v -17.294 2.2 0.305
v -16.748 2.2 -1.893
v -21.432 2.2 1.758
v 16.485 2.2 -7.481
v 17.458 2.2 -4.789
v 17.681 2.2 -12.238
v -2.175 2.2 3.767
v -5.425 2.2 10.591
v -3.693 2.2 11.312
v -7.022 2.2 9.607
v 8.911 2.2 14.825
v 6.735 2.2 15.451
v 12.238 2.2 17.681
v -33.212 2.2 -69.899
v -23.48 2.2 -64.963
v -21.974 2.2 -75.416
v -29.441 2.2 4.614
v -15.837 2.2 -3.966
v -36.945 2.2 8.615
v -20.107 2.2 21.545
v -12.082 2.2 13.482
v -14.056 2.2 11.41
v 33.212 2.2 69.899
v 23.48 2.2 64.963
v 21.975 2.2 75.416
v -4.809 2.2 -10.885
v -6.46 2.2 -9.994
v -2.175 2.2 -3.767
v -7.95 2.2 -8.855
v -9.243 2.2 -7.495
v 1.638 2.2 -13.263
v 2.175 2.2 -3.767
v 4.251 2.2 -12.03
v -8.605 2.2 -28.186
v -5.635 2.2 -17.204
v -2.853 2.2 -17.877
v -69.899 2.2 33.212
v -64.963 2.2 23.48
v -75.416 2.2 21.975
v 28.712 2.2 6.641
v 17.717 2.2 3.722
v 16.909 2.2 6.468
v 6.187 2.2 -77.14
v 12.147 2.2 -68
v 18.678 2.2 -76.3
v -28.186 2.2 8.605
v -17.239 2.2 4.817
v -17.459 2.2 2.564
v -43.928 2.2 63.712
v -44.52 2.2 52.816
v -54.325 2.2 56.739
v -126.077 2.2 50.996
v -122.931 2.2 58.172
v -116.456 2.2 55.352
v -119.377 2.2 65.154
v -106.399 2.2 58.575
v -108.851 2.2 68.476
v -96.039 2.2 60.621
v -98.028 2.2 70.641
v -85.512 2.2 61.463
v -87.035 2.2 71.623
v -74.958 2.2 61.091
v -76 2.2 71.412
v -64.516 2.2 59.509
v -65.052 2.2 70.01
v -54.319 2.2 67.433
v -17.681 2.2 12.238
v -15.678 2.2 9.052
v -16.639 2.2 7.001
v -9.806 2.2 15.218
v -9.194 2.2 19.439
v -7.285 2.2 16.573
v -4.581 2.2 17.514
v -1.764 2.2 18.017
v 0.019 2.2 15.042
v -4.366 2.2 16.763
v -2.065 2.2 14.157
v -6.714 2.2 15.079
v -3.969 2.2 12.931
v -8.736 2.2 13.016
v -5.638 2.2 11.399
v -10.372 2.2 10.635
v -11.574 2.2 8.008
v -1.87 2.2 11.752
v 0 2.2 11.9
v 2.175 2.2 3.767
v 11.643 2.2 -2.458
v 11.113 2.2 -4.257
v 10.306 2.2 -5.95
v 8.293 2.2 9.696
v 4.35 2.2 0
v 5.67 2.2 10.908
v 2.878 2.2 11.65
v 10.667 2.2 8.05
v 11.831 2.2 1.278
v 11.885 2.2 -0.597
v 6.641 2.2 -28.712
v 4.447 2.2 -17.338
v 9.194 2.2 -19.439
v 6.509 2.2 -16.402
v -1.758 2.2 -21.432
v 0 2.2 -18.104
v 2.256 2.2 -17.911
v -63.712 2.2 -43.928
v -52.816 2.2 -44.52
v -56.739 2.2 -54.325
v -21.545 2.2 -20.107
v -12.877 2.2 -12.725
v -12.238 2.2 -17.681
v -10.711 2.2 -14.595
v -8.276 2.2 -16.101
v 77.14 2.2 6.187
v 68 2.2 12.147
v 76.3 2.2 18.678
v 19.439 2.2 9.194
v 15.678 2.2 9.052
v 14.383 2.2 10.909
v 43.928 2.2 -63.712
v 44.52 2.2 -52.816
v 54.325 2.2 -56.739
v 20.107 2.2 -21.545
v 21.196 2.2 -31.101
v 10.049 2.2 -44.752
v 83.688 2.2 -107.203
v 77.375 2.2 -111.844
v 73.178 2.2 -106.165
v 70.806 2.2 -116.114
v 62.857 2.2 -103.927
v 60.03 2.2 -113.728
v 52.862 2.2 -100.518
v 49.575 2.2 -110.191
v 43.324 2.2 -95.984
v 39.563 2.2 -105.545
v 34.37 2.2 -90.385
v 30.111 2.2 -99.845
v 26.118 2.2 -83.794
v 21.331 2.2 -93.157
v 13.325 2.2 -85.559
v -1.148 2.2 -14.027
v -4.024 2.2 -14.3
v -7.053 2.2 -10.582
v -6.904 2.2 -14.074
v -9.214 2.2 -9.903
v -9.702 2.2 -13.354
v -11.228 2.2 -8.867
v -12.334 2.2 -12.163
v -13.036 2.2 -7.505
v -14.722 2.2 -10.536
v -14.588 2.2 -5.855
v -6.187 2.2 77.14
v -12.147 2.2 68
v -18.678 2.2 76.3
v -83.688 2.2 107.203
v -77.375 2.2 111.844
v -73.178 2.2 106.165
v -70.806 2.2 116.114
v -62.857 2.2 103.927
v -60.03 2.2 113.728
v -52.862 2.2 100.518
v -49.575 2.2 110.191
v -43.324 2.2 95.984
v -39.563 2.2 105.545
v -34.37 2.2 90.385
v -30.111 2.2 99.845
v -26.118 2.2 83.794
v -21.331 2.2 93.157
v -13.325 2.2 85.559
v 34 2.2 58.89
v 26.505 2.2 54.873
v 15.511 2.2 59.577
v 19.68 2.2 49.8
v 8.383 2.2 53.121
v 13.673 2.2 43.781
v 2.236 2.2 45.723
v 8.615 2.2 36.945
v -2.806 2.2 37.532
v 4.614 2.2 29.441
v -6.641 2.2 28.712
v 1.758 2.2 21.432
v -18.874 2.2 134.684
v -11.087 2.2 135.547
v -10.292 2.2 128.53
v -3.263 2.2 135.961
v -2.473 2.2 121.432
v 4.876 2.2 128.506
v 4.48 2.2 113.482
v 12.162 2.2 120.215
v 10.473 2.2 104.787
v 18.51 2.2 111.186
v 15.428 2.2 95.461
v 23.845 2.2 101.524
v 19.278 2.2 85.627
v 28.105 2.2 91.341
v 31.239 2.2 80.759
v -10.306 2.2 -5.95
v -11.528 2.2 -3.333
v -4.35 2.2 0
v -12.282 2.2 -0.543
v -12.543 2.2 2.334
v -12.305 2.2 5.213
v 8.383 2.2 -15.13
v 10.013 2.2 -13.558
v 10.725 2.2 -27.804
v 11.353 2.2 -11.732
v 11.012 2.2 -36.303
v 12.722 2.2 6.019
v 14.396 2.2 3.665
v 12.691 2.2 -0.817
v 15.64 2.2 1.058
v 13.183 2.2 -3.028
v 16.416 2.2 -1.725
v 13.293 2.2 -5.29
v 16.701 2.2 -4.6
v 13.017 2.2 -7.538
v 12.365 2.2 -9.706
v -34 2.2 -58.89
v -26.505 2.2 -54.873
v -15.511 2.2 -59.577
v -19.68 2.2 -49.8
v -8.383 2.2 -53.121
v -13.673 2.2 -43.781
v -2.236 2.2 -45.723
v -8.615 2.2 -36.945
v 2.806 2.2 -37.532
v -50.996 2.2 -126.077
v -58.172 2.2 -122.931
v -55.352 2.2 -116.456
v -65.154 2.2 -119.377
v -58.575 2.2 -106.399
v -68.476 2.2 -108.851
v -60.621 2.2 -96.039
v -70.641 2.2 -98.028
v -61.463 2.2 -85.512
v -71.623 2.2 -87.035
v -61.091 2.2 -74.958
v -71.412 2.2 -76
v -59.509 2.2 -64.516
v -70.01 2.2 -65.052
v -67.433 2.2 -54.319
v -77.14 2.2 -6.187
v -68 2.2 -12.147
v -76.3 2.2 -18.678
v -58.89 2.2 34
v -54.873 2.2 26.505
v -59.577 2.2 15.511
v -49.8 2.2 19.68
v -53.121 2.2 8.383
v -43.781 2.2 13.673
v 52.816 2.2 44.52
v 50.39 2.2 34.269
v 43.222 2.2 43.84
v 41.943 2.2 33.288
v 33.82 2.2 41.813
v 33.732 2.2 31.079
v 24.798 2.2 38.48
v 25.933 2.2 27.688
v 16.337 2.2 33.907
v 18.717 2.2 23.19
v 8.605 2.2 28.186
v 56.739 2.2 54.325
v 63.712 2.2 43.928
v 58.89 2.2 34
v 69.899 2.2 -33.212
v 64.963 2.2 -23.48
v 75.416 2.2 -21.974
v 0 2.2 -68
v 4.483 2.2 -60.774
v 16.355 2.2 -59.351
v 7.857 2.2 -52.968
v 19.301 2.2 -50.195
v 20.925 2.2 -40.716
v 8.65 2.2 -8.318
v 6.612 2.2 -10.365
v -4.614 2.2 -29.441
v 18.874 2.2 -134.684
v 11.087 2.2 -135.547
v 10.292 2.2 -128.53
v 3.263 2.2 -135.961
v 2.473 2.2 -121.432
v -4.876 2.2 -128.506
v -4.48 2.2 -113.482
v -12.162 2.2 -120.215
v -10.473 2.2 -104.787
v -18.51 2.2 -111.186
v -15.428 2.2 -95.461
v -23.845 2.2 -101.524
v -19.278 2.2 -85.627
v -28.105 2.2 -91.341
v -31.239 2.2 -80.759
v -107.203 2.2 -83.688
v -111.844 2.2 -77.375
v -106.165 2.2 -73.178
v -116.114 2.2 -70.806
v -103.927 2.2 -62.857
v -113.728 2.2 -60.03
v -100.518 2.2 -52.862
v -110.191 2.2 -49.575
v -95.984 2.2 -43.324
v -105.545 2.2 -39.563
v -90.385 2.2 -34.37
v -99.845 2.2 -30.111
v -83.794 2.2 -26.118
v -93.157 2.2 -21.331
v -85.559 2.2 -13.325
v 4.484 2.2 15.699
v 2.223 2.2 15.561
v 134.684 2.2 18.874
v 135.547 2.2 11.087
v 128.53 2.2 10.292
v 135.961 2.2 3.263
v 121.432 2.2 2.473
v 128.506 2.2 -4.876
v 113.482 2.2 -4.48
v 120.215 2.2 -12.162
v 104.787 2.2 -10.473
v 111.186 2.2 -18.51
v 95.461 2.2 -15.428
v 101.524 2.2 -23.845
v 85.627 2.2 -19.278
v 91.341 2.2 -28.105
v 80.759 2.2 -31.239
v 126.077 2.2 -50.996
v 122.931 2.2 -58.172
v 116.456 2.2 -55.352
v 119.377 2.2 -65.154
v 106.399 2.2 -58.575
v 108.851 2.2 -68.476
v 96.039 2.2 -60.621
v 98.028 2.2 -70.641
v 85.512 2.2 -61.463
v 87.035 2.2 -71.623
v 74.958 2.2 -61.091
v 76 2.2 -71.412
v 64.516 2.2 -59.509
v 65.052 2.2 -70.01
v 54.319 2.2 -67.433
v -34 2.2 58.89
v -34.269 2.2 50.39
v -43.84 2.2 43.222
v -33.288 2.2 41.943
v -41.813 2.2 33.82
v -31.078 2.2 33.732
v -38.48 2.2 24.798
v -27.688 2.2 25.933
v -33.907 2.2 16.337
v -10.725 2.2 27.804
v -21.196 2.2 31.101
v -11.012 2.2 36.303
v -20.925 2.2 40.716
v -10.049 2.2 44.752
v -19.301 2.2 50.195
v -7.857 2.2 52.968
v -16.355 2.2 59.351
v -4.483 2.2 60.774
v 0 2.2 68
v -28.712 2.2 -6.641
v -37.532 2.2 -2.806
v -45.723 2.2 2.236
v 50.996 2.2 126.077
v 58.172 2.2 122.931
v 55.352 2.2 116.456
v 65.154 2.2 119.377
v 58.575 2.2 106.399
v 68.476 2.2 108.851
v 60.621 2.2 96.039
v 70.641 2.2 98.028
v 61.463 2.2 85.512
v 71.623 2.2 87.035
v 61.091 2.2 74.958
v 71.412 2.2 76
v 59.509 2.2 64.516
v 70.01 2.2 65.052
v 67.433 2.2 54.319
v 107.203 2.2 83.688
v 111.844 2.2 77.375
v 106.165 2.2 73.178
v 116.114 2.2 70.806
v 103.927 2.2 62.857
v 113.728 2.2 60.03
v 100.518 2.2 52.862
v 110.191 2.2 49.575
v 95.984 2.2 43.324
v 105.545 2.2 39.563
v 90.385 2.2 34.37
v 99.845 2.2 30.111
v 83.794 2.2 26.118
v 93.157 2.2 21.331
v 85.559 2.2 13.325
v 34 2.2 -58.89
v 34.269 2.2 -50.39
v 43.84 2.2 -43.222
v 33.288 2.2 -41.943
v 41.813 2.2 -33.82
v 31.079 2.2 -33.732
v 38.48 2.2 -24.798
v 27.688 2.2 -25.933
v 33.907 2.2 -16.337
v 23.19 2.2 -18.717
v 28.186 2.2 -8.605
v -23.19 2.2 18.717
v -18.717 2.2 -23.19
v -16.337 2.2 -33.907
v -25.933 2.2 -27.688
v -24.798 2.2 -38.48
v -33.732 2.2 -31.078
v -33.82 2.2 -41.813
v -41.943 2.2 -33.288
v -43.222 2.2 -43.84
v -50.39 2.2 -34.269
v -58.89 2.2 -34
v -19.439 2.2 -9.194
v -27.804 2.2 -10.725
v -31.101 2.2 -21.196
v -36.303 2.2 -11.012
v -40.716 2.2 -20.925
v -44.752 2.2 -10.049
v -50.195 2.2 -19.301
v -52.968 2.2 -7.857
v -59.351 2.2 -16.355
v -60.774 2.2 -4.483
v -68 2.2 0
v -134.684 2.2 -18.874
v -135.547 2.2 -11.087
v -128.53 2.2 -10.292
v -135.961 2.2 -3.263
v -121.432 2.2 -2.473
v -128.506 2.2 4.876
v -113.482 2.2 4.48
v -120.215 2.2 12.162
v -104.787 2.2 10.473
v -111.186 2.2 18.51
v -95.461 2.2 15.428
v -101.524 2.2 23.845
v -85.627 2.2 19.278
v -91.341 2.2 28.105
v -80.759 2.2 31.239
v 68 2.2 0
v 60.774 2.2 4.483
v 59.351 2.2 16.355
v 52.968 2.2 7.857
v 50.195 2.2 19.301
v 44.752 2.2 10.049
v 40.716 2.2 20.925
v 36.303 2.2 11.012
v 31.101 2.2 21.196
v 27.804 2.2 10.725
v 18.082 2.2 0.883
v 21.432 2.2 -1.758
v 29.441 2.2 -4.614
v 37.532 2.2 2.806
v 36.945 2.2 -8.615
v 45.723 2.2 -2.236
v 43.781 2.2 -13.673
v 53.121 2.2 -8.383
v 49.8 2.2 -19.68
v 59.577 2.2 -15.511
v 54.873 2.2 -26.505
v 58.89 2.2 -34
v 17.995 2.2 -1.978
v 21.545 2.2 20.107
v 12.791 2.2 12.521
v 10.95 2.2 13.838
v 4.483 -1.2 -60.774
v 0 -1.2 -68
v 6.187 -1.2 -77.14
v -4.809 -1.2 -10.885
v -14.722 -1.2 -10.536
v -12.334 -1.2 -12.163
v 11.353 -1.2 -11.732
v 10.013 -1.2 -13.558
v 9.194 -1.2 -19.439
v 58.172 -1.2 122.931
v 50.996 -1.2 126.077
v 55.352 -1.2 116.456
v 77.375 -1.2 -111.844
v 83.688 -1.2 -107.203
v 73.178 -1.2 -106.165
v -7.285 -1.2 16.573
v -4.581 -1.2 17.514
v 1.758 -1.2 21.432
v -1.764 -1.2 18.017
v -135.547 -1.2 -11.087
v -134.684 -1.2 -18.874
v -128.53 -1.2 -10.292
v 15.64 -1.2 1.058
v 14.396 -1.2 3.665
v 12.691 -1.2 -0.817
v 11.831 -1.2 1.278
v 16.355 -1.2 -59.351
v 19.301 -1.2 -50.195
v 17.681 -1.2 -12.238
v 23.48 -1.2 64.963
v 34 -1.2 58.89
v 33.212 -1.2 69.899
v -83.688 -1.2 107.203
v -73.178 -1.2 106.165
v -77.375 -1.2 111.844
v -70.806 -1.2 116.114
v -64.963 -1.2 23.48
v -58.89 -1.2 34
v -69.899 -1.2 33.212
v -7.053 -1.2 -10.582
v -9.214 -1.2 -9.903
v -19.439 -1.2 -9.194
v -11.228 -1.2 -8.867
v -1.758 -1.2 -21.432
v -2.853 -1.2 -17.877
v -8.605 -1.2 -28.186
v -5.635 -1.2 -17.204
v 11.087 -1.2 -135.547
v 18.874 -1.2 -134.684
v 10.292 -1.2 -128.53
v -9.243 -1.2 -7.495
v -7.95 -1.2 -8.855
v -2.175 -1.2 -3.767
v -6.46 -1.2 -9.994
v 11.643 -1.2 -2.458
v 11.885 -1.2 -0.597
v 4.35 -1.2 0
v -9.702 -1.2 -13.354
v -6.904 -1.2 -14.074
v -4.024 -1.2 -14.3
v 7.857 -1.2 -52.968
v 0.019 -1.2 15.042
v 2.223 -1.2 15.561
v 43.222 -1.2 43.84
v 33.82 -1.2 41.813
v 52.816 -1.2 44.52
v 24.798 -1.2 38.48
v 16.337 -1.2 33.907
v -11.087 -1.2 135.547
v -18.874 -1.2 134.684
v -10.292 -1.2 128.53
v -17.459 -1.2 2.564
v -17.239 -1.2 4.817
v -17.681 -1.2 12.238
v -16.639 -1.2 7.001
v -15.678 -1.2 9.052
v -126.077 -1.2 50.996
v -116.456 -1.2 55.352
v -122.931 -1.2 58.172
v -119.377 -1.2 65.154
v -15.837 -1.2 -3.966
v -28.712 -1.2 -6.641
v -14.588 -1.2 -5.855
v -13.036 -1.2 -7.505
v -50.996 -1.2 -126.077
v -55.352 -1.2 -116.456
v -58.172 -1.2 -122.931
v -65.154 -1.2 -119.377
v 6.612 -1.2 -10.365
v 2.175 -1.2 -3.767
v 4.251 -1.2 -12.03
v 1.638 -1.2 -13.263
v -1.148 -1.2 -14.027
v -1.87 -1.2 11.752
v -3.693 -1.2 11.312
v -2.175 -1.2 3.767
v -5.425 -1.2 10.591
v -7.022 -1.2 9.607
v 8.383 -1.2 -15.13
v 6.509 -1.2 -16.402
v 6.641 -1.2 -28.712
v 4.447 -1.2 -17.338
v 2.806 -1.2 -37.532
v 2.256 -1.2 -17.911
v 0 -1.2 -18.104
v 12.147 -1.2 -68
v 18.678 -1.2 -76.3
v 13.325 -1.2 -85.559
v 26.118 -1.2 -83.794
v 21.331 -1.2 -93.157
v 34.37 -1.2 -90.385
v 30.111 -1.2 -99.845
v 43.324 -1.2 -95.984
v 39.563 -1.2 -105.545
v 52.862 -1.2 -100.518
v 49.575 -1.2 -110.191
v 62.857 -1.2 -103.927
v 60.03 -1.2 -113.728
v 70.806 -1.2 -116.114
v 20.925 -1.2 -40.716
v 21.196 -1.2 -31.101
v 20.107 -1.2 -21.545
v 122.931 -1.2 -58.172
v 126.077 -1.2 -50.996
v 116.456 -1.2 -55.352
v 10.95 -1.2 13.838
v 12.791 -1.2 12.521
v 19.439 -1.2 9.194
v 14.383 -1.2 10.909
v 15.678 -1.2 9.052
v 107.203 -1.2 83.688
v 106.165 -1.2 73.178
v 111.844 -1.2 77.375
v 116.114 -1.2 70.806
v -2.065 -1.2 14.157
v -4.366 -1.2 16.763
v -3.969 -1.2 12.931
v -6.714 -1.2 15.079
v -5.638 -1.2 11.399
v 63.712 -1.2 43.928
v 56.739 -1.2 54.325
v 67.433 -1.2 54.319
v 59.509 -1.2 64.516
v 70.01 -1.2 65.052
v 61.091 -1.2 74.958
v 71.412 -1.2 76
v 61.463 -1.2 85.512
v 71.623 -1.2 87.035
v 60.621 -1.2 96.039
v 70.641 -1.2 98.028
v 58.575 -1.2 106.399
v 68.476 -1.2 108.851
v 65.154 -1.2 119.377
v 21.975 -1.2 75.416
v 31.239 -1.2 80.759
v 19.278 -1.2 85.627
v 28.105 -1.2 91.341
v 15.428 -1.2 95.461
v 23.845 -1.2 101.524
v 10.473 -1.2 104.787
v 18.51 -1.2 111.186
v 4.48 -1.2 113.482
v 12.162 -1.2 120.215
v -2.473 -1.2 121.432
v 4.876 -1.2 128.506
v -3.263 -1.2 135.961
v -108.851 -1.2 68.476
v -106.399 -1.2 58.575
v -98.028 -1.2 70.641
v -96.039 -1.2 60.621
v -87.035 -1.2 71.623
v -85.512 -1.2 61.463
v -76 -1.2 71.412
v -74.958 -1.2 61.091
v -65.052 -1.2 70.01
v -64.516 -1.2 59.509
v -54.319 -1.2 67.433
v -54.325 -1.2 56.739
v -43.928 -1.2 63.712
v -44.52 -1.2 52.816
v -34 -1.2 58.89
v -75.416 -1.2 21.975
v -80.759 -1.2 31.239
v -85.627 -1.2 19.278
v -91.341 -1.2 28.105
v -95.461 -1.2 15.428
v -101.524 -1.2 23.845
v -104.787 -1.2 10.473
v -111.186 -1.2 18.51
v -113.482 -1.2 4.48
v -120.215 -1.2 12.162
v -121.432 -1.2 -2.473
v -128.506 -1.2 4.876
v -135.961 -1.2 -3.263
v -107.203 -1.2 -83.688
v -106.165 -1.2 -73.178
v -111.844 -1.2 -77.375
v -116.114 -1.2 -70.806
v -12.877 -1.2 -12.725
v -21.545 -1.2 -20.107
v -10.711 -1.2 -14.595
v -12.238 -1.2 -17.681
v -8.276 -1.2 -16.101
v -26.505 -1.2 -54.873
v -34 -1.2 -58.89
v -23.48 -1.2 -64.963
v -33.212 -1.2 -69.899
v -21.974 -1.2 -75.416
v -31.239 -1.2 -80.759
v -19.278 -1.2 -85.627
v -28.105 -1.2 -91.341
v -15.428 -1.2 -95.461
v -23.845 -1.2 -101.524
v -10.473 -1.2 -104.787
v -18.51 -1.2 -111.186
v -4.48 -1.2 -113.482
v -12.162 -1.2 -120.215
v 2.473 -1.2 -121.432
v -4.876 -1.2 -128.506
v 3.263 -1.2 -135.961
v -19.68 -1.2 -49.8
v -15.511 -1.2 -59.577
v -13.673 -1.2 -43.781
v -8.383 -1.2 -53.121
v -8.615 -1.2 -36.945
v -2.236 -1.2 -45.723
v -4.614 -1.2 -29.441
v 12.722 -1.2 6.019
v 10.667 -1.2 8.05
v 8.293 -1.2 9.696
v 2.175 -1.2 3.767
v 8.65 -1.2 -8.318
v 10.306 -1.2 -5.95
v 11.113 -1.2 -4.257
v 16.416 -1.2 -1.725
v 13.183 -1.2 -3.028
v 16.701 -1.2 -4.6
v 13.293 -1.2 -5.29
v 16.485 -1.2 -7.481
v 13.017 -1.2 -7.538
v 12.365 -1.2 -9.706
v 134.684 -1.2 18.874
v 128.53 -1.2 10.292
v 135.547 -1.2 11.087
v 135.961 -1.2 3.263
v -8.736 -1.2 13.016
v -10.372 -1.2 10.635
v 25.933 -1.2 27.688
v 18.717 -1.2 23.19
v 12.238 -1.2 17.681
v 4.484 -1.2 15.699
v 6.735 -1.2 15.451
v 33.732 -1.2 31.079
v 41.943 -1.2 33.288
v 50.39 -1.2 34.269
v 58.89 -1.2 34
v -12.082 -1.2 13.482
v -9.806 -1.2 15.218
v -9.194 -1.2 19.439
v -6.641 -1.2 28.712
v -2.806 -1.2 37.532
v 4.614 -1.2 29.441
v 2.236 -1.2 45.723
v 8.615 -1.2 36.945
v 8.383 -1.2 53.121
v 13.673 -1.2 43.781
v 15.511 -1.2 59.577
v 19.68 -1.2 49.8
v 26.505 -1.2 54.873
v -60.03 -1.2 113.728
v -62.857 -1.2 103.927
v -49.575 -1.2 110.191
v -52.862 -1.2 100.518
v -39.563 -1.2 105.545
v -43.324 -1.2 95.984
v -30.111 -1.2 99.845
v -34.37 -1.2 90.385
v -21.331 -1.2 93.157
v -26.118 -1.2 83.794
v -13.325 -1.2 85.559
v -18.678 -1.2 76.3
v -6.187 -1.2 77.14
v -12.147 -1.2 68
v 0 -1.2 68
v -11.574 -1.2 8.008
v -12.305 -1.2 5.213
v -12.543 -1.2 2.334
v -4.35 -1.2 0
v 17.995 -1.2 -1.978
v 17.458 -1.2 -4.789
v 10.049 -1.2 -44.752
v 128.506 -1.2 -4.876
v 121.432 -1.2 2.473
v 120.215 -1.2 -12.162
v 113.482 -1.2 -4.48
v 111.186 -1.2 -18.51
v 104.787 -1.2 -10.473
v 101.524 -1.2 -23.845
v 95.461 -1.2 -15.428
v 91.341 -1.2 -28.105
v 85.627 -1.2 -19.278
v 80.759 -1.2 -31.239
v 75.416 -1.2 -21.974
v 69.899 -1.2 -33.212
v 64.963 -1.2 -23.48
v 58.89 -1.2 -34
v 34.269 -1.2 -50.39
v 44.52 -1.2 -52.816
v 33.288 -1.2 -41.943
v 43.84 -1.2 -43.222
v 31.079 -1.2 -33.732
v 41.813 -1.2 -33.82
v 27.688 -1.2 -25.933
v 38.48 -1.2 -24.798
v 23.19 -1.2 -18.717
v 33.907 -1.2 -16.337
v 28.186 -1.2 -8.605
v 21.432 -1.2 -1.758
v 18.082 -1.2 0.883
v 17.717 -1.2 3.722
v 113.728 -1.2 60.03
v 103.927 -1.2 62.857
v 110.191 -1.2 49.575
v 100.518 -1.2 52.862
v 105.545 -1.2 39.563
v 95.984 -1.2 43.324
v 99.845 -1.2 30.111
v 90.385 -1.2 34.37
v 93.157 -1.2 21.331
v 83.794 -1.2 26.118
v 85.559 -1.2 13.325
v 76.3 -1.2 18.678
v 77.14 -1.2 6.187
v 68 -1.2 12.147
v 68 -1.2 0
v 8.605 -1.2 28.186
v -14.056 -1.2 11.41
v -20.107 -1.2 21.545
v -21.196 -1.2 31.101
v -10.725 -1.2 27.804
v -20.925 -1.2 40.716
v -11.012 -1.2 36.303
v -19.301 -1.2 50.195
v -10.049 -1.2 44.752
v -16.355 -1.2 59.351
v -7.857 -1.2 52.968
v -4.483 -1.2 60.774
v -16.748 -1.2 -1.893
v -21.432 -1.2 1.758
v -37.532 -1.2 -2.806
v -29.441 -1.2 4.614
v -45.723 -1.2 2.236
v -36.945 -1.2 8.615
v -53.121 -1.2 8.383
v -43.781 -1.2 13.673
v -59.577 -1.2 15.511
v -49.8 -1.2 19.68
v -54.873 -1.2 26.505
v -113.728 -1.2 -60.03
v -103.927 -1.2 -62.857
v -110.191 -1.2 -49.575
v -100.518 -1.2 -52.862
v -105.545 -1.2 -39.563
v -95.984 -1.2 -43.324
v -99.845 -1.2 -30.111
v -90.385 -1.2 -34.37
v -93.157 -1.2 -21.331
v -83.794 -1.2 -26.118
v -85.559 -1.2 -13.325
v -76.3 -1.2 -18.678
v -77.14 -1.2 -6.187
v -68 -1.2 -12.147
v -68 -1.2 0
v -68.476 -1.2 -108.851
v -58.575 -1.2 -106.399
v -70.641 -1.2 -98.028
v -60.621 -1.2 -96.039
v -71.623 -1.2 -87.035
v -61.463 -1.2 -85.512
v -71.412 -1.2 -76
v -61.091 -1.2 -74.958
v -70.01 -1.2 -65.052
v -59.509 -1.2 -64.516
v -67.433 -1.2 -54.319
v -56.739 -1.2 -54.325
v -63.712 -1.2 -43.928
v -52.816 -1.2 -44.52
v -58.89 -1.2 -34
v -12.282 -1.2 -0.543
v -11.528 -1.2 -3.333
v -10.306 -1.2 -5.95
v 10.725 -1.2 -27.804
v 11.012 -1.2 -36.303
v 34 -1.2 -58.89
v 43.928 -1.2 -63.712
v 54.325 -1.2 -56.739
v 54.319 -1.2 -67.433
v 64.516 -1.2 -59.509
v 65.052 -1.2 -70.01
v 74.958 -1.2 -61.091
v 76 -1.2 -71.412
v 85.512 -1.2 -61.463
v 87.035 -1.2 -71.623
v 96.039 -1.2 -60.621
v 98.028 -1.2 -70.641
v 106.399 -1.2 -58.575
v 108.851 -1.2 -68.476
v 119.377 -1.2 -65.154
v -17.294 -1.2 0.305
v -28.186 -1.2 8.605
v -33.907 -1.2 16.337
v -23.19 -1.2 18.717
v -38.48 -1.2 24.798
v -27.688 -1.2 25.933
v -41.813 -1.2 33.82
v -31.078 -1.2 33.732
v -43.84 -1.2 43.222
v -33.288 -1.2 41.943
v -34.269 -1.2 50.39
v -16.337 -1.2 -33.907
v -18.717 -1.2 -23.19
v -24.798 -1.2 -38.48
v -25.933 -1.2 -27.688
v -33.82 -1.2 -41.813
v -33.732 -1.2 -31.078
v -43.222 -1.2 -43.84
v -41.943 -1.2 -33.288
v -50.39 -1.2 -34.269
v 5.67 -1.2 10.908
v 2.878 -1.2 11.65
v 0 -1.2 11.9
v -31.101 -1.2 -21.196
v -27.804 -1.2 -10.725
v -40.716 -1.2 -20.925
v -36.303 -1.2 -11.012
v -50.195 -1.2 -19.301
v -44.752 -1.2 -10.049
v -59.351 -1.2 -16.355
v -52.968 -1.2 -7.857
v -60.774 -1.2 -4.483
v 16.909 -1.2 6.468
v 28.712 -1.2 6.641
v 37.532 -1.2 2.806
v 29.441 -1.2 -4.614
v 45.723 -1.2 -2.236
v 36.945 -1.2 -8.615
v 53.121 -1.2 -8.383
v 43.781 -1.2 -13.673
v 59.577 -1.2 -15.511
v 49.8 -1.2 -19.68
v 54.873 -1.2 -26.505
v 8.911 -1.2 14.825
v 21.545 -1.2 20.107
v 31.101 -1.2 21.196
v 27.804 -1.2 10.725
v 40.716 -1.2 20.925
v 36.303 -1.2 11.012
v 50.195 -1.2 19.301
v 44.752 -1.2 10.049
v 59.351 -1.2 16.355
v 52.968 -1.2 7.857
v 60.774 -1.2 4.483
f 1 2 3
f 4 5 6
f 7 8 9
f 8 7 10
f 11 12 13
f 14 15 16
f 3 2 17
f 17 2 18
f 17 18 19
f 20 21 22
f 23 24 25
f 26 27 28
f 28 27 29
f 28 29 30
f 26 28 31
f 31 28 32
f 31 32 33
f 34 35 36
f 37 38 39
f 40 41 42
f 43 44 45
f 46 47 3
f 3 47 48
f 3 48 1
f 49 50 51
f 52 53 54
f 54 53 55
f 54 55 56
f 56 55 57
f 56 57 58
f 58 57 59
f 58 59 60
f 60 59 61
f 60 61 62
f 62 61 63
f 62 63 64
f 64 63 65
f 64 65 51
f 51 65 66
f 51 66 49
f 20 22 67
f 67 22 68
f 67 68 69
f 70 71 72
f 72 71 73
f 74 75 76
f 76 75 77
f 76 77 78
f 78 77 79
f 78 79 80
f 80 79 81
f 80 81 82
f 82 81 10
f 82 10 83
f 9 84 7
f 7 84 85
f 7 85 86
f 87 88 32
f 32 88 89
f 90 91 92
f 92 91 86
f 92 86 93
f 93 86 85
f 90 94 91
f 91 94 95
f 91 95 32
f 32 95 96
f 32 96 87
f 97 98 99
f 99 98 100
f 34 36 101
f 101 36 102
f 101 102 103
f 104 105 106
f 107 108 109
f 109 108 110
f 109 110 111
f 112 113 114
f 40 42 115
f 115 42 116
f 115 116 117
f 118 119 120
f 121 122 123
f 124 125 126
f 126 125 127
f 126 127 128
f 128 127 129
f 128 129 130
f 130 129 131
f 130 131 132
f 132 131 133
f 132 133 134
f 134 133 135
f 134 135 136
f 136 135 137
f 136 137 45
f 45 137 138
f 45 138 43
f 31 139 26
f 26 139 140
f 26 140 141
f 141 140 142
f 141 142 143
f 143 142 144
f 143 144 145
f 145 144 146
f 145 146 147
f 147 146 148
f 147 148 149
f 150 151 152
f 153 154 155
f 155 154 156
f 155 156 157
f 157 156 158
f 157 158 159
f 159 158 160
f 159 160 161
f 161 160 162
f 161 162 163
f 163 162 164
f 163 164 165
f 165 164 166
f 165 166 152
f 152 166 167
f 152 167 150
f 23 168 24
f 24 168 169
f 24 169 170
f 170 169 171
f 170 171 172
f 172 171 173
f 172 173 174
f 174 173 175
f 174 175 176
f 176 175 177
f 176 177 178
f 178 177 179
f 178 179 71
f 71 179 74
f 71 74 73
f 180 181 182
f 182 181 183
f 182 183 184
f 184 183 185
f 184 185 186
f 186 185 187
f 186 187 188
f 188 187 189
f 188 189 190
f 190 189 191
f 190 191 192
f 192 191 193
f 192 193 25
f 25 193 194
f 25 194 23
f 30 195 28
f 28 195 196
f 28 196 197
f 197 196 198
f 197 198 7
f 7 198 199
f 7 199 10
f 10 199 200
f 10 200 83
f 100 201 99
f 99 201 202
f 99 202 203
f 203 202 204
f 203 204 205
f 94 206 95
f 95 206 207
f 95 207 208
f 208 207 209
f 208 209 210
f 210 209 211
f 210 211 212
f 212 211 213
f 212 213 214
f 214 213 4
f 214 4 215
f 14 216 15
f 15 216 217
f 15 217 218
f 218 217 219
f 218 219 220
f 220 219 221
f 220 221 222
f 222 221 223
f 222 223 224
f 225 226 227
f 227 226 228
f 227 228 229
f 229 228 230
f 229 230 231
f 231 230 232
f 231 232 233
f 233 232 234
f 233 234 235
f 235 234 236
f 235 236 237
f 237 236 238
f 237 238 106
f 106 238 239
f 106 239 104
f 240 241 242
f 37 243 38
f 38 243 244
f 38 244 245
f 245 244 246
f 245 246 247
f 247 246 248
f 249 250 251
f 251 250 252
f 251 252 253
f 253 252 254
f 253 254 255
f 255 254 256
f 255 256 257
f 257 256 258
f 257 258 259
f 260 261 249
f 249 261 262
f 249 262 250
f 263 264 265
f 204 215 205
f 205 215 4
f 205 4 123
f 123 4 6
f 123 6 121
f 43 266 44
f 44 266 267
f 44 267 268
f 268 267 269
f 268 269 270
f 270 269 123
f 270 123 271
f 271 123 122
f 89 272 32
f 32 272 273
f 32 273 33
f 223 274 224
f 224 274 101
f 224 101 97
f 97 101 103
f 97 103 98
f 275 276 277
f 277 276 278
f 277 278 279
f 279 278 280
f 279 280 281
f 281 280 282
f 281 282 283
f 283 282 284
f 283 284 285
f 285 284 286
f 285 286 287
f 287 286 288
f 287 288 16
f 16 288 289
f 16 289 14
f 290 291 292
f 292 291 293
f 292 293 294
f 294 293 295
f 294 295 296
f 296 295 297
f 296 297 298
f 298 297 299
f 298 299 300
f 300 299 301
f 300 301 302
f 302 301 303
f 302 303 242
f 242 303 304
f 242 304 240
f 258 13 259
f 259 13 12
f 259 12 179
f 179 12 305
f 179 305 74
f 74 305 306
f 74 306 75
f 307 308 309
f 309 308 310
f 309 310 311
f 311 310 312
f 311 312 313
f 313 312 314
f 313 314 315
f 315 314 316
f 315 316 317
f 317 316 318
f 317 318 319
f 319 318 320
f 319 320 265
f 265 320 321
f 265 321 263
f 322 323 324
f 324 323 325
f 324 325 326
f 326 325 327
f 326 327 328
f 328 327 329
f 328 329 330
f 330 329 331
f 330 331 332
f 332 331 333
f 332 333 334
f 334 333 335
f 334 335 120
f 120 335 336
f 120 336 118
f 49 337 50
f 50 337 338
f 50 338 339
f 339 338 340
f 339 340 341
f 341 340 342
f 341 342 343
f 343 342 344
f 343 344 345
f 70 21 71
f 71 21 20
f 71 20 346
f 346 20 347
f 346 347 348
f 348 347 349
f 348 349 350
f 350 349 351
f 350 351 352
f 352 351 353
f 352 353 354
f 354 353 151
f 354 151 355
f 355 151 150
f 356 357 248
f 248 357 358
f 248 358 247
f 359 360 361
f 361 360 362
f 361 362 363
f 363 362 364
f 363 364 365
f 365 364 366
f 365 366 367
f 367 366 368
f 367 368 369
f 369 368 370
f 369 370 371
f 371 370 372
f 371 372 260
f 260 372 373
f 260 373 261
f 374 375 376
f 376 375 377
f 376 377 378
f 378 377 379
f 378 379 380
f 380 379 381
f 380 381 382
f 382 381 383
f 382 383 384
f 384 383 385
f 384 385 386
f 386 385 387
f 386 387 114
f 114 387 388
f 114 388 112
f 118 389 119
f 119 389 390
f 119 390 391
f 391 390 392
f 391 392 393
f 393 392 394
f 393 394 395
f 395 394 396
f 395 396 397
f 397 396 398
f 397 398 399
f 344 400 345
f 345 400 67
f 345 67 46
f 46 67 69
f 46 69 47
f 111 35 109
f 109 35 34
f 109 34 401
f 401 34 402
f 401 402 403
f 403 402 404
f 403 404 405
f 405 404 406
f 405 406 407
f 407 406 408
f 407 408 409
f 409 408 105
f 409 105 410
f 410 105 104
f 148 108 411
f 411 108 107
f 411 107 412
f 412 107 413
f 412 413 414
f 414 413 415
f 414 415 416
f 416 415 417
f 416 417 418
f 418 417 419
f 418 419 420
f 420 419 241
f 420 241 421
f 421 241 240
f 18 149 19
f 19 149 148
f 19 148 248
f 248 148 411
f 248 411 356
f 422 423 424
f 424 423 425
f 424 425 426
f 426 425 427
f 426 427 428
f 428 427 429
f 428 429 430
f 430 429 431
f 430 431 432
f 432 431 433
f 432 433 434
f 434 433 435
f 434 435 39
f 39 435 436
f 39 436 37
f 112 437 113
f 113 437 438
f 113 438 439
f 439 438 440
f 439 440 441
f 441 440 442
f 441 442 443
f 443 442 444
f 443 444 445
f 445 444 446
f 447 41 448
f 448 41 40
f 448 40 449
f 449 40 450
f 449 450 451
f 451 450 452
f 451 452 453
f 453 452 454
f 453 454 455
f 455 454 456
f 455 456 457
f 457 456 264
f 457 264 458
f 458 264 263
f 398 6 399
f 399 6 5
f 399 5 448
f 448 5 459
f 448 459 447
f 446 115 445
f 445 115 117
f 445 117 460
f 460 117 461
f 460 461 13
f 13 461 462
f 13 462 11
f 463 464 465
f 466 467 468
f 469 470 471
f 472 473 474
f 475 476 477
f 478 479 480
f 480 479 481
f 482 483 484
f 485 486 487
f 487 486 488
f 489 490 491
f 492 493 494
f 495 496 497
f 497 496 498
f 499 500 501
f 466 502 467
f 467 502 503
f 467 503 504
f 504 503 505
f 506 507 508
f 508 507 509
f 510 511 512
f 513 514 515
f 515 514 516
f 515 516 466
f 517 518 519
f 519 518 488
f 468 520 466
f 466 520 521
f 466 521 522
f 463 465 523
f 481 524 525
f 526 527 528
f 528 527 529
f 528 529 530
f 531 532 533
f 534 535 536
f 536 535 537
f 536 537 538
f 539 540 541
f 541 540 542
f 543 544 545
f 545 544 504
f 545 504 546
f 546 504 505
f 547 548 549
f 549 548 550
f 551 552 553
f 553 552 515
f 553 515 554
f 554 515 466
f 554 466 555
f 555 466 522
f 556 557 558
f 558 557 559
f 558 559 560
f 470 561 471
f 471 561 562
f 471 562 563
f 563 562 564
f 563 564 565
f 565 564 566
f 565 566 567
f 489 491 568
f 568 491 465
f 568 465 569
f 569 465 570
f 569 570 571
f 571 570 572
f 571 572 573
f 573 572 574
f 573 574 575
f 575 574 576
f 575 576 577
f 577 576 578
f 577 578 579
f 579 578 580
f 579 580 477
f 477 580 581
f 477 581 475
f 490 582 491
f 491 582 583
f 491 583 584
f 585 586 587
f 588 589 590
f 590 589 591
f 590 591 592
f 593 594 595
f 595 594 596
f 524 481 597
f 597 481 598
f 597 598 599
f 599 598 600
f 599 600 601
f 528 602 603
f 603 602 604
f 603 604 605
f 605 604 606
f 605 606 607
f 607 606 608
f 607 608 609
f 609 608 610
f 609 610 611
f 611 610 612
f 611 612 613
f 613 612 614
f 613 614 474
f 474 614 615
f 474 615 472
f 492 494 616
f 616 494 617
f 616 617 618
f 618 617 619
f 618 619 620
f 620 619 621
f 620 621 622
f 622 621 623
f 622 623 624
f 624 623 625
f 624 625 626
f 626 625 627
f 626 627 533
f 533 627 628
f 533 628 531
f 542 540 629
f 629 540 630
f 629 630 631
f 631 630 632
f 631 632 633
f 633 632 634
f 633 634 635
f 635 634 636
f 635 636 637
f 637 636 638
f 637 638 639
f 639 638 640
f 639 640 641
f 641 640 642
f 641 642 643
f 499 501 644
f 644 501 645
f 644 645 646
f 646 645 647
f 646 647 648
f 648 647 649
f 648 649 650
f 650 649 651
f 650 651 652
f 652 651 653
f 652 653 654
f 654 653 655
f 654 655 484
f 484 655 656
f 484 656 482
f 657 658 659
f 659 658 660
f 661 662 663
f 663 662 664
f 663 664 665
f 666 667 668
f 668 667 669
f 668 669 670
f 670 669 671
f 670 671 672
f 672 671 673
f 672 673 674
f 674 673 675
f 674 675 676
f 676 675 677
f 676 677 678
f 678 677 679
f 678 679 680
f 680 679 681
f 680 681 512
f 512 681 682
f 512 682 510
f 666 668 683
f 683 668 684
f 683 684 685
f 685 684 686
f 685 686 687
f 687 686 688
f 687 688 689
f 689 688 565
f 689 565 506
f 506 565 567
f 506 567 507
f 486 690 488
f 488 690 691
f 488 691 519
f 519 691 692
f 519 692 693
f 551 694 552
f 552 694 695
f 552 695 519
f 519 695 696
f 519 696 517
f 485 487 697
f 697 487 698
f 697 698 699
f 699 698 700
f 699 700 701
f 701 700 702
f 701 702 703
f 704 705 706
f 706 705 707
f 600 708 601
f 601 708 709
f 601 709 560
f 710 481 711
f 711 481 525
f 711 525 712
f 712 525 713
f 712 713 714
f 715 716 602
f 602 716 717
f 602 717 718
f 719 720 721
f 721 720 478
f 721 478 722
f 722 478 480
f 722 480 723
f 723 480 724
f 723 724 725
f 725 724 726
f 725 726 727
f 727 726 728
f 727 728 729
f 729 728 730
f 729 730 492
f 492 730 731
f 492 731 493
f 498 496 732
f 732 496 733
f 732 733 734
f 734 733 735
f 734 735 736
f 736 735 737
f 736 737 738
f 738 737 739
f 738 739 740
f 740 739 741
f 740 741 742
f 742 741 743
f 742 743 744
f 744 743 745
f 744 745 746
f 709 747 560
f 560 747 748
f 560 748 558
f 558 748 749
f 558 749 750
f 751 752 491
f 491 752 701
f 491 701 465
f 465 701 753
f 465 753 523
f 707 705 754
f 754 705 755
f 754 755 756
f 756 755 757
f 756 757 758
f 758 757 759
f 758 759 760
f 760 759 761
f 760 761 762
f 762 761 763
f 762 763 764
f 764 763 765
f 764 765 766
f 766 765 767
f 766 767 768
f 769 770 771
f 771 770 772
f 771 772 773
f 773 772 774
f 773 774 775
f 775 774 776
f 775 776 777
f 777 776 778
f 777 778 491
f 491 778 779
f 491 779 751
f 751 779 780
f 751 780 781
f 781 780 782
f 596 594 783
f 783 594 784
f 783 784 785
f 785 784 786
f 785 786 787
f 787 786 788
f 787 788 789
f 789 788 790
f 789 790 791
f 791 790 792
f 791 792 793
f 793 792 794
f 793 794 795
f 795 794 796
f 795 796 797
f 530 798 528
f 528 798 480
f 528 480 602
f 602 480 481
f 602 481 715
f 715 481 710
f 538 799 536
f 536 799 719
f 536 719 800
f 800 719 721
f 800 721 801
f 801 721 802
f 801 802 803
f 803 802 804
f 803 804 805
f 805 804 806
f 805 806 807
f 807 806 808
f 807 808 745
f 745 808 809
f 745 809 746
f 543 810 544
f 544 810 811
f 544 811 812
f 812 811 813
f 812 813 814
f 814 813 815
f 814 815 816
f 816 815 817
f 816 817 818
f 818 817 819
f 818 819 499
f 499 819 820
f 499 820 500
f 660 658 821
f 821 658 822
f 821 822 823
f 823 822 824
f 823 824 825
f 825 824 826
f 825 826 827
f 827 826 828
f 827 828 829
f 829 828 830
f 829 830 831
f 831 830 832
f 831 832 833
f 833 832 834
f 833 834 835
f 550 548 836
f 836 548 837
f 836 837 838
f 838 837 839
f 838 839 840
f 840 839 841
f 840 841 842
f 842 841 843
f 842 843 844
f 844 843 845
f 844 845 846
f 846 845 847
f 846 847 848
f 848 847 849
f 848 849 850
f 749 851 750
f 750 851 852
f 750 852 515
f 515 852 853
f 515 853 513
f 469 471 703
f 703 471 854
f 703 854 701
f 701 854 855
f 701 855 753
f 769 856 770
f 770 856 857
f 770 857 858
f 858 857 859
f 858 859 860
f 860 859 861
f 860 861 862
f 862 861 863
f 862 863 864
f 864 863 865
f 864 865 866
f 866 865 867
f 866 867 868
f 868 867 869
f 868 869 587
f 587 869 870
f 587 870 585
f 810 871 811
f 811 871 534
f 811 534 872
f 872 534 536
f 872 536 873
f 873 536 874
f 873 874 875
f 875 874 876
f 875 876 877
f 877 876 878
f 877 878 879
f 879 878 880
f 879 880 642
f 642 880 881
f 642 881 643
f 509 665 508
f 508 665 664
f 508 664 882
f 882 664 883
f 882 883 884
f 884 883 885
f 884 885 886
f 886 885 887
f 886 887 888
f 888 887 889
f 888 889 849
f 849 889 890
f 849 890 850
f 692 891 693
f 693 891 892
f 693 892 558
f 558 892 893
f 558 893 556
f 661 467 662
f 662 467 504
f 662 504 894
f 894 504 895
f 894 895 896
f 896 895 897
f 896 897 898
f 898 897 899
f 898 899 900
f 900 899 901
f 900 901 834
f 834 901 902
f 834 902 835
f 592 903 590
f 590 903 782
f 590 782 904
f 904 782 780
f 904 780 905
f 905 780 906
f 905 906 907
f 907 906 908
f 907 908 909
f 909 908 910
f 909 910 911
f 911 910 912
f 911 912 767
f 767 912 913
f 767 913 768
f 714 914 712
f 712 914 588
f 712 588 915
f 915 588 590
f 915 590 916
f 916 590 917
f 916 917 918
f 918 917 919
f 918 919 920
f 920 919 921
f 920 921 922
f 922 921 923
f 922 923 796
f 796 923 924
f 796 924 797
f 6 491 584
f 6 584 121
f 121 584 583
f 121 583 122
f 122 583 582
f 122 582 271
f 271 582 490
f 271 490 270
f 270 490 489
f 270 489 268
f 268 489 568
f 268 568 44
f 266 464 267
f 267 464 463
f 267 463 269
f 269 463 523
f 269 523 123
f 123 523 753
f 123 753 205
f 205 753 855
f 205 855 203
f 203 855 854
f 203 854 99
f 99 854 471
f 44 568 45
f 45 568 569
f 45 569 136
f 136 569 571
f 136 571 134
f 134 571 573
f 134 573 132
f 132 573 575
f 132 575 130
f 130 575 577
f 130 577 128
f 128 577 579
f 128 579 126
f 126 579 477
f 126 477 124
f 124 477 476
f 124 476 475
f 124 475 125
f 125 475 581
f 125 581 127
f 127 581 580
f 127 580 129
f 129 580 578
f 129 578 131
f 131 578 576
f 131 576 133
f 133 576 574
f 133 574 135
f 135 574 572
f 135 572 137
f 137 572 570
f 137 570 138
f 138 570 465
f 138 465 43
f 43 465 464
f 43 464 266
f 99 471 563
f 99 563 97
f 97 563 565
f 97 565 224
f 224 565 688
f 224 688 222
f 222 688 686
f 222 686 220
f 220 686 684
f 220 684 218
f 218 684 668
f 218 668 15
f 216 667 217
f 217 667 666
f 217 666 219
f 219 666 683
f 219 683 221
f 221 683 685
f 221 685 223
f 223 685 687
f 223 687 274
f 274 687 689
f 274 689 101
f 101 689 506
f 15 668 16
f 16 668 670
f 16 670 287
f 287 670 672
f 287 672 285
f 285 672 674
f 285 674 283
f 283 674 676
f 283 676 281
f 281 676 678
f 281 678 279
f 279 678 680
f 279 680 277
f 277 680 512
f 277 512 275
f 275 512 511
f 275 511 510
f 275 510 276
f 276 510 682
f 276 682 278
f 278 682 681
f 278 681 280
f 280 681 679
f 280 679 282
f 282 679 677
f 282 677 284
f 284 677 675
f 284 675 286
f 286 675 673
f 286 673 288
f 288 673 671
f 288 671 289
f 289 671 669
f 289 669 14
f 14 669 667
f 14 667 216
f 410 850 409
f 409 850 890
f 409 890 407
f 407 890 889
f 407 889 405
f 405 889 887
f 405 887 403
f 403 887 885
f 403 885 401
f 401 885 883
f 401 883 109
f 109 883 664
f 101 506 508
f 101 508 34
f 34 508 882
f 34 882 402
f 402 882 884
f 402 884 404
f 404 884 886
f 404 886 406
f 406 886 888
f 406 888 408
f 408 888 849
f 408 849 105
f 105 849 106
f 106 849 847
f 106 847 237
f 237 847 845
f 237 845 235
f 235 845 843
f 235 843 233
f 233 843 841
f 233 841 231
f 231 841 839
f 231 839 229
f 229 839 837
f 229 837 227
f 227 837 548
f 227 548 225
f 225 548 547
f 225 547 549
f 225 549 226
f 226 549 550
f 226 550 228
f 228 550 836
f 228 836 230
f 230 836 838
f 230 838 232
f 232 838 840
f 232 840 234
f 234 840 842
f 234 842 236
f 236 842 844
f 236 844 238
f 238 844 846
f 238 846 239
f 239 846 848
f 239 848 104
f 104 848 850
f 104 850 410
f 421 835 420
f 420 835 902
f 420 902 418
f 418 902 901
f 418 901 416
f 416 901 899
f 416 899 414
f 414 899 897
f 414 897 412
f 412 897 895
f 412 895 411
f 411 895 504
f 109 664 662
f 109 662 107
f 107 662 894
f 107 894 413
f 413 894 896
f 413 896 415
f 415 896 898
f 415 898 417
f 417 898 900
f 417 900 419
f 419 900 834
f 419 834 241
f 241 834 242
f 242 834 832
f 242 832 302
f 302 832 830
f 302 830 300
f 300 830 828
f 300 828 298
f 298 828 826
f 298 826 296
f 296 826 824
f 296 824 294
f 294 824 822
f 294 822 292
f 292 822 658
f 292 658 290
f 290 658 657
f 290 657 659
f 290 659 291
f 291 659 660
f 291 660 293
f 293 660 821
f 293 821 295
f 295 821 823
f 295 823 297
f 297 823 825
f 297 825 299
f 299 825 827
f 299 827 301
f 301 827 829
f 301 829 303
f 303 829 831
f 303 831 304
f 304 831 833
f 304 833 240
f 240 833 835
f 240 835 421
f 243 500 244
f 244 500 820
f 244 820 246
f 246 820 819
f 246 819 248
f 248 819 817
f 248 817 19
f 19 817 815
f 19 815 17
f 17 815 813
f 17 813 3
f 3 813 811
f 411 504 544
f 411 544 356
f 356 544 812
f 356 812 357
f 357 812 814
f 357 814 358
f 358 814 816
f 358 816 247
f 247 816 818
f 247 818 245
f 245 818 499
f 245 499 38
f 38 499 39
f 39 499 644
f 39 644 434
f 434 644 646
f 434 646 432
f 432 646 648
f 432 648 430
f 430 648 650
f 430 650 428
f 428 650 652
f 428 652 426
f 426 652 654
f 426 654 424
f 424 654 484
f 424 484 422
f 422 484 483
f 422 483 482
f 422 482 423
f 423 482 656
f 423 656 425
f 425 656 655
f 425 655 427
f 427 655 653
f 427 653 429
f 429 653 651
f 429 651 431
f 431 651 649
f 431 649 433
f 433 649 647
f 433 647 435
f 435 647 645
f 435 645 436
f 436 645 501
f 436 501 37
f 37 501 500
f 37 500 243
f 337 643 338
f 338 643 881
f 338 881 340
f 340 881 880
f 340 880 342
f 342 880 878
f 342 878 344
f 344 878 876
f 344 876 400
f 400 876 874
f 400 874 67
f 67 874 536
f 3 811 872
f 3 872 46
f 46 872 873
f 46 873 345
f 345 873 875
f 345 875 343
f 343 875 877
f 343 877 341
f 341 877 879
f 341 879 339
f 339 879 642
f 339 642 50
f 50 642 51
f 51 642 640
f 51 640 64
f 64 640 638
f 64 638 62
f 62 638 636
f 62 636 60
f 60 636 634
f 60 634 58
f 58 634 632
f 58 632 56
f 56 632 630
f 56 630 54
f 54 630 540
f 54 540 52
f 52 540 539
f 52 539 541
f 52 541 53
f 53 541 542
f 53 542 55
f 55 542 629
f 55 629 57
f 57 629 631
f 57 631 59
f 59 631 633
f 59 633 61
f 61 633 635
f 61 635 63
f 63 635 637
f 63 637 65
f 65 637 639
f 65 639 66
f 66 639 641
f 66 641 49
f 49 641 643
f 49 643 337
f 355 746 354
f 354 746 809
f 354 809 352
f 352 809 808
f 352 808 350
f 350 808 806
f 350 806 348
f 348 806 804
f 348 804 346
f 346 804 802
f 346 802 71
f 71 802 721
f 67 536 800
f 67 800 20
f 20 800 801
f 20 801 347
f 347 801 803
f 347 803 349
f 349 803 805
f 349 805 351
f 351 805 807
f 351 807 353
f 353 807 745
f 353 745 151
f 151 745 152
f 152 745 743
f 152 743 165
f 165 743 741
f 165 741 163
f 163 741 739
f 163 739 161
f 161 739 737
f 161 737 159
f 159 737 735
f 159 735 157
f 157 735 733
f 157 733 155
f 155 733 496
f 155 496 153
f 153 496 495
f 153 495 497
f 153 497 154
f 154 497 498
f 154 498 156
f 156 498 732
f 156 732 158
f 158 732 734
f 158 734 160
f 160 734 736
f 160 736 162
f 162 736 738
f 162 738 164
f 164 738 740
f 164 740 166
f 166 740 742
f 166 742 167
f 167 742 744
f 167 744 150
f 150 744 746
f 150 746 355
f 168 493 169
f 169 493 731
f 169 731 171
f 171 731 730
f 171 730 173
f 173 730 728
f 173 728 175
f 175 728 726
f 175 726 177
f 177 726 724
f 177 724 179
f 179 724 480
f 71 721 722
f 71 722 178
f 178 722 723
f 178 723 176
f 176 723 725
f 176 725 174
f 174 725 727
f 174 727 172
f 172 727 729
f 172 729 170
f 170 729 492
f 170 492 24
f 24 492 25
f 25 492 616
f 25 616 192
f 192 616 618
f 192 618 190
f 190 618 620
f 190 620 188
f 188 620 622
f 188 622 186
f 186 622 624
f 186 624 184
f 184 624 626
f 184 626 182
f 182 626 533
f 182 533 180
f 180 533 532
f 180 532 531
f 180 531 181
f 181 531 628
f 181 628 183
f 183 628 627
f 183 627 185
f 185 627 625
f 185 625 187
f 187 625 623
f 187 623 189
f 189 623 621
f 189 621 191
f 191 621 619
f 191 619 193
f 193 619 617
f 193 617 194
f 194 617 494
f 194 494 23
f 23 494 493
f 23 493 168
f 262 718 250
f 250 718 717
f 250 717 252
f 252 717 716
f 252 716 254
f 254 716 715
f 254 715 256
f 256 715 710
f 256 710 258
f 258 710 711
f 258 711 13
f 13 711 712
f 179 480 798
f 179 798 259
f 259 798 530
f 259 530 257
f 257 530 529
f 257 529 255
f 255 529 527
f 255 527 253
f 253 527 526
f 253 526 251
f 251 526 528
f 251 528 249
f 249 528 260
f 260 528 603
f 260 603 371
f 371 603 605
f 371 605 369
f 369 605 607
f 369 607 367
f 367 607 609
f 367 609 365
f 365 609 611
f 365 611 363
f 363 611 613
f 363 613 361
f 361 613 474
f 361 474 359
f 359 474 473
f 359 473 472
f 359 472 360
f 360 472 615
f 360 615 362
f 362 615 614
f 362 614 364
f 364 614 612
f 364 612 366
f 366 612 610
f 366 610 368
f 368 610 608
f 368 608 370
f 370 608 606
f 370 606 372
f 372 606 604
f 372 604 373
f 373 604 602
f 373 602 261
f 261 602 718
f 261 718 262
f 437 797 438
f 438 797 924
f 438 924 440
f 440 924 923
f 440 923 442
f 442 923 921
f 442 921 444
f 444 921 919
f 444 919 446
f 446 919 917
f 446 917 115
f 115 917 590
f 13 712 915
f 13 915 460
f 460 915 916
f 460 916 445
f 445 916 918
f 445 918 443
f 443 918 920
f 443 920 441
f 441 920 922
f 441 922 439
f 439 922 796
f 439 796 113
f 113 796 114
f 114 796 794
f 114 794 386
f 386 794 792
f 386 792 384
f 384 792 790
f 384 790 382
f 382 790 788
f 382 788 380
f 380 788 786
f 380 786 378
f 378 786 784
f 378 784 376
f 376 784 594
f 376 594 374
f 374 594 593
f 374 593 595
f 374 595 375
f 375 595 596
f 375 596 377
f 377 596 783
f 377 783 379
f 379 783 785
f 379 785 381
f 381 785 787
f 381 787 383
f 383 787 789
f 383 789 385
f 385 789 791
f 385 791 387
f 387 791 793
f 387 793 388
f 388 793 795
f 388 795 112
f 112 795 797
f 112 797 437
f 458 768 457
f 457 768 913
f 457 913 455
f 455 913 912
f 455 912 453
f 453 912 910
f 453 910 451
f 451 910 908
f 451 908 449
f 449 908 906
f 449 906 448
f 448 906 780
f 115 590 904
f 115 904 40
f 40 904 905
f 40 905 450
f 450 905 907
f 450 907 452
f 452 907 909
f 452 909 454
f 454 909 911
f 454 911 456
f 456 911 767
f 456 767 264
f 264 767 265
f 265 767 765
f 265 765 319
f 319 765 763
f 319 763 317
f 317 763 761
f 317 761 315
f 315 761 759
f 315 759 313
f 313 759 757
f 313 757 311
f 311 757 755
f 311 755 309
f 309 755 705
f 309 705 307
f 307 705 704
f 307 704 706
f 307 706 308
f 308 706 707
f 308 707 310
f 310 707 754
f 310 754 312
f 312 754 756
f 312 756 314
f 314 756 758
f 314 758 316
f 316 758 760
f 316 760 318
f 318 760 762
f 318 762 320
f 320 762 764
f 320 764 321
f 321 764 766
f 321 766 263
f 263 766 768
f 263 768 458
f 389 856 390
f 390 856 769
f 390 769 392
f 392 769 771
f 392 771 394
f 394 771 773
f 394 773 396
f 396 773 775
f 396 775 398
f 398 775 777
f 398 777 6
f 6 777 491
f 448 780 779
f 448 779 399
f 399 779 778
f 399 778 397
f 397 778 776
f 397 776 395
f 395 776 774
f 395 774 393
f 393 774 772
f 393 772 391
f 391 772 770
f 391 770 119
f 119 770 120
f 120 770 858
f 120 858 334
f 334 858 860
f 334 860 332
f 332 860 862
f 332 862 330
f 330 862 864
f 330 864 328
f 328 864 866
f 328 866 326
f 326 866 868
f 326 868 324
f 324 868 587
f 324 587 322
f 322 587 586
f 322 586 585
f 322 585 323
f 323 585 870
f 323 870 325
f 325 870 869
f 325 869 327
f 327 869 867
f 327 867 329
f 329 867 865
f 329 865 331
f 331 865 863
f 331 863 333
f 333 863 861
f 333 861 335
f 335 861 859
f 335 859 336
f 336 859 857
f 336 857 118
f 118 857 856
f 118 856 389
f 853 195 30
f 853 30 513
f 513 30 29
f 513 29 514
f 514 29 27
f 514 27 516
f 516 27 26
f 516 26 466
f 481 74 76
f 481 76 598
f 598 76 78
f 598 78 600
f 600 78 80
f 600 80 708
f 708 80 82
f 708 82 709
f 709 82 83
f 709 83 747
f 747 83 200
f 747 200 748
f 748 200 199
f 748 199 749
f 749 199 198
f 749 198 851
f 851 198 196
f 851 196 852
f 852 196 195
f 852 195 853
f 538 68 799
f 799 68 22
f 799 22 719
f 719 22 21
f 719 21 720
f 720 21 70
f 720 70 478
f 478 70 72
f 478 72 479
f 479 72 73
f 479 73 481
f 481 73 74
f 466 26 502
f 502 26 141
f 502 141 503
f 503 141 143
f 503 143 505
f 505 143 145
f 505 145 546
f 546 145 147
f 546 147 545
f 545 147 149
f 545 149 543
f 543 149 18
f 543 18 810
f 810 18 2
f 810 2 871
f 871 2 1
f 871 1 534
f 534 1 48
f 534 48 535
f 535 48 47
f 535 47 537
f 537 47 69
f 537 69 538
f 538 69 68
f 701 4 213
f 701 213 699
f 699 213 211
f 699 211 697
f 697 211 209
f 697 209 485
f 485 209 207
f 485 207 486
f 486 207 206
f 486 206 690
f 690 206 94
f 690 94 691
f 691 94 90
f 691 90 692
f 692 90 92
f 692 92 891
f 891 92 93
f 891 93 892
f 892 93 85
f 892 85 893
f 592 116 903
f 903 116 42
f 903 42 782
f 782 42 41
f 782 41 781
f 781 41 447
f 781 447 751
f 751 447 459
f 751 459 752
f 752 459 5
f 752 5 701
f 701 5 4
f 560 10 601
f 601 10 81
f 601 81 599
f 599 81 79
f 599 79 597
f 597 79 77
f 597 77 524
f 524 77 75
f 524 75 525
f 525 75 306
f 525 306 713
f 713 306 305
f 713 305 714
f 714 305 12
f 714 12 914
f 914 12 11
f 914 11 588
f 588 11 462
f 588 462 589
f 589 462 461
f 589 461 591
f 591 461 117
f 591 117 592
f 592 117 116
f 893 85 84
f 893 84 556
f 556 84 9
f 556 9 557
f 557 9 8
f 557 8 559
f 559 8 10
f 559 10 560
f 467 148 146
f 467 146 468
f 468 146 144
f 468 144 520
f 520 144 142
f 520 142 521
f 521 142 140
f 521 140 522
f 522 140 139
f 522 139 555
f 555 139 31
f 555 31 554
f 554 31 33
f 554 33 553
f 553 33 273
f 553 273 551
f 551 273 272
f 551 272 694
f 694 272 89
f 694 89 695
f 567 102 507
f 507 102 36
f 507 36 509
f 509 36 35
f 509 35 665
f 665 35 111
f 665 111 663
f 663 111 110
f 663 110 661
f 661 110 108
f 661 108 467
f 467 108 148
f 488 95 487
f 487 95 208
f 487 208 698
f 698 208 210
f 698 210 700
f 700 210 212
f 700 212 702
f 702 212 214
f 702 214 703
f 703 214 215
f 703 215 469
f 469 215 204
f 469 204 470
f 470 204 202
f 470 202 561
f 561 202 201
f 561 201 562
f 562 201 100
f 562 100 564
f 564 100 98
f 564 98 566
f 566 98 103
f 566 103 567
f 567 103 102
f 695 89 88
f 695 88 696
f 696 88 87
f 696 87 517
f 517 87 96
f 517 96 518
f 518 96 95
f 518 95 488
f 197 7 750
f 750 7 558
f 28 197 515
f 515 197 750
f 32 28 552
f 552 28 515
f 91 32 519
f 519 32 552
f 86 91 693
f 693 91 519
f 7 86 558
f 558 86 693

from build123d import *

# Parameters (mm, degrees)
BOSS_EXTRUDE1_DEPTH = 1
CIRPATTERN1_COUNT   = 12
SKETCH2_R           = 6.32456178
BOSS_EXTRUDE2_DEPTH = 1
CUT_EXTRUDE1_DEPTH  = 57.561097513
SCALE1_SCALE        = 3.4
CUT_EXTRUDE2_DEPTH  = 3.4


with BuildPart() as part:
    # Sketch1 → Boss-Extrude1 (new body)
    with BuildSketch(Plane(origin=(0, 0, 0), x_dir=(1, 0, 0), z_dir=(0, 1, 0))):
        with BuildLine():
            ThreePointArc((0, 20), (3.252272915, 10), (0, 0))
            Line((0, 0), (3.572780991, 0))
            ThreePointArc((3.572780991, 0), (6.252272915, 10), (3.572780991, 20))
            ThreePointArc((3.572780991, 20), (12.742280623, 28.230711371), (24.614013417, 31.530149754))
            ThreePointArc((24.614013417, 31.530149754), (22.757477342, 32.895246238), (20.825411836, 34.151167211))
            ThreePointArc((20.825411836, 34.151167211), (8.856268151, 29.366098374), (0, 20))
        make_face()
    extrude(amount=BOSS_EXTRUDE1_DEPTH)


with BuildPart() as cirpattern1_1:
    # CirPattern1: pattern copy
    add(part.part.rotate(Axis((0, 0, 0), (0, 1, 0)), 1 * 360 / CIRPATTERN1_COUNT))


with BuildPart() as cirpattern1_2:
    # CirPattern1: pattern copy
    add(part.part.rotate(Axis((0, 0, 0), (0, 1, 0)), 2 * 360 / CIRPATTERN1_COUNT))


with BuildPart() as cirpattern1_3:
    # CirPattern1: pattern copy
    add(part.part.rotate(Axis((0, 0, 0), (0, 1, 0)), 3 * 360 / CIRPATTERN1_COUNT))


with BuildPart() as cirpattern1_4:
    # CirPattern1: pattern copy
    add(part.part.rotate(Axis((0, 0, 0), (0, 1, 0)), 4 * 360 / CIRPATTERN1_COUNT))


with BuildPart() as cirpattern1_5:
    # CirPattern1: pattern copy
    add(part.part.rotate(Axis((0, 0, 0), (0, 1, 0)), 5 * 360 / CIRPATTERN1_COUNT))


with BuildPart() as cirpattern1_6:
    # CirPattern1: pattern copy
    add(part.part.rotate(Axis((0, 0, 0), (0, 1, 0)), 6 * 360 / CIRPATTERN1_COUNT))


with BuildPart() as cirpattern1_7:
    # CirPattern1: pattern copy
    add(part.part.rotate(Axis((0, 0, 0), (0, 1, 0)), 7 * 360 / CIRPATTERN1_COUNT))


with BuildPart() as cirpattern1_8:
    # CirPattern1: pattern copy
    add(part.part.rotate(Axis((0, 0, 0), (0, 1, 0)), 8 * 360 / CIRPATTERN1_COUNT))


with BuildPart() as cirpattern1_9:
    # CirPattern1: pattern copy
    add(part.part.rotate(Axis((0, 0, 0), (0, 1, 0)), 9 * 360 / CIRPATTERN1_COUNT))


with BuildPart() as cirpattern1_10:
    # CirPattern1: pattern copy
    add(part.part.rotate(Axis((0, 0, 0), (0, 1, 0)), 10 * 360 / CIRPATTERN1_COUNT))


with BuildPart() as cirpattern1_11:
    # CirPattern1: pattern copy
    add(part.part.rotate(Axis((0, 0, 0), (0, 1, 0)), 11 * 360 / CIRPATTERN1_COUNT))


with BuildPart() as part_1:
    add(part.part)

    add(cirpattern1_1.part)  # Boss-Extrude2 merges CirPattern1_1

    add(cirpattern1_2.part)  # Boss-Extrude2 merges CirPattern1_2

    add(cirpattern1_3.part)  # Boss-Extrude2 merges CirPattern1_3

    add(cirpattern1_4.part)  # Boss-Extrude2 merges CirPattern1_4

    add(cirpattern1_5.part)  # Boss-Extrude2 merges CirPattern1_5

    add(cirpattern1_6.part)  # Boss-Extrude2 merges CirPattern1_6

    add(cirpattern1_7.part)  # Boss-Extrude2 merges CirPattern1_7

    add(cirpattern1_8.part)  # Boss-Extrude2 merges CirPattern1_8

    add(cirpattern1_9.part)  # Boss-Extrude2 merges CirPattern1_9

    add(cirpattern1_10.part)  # Boss-Extrude2 merges CirPattern1_10

    add(cirpattern1_11.part)  # Boss-Extrude2 merges CirPattern1_11
    # Sketch2 → Boss-Extrude2 (add)
    with BuildSketch(Plane(origin=(0, 0, 0), x_dir=(1, 0, 0), z_dir=(0, 1, 0))):
        Circle(SKETCH2_R)
    extrude(amount=BOSS_EXTRUDE2_DEPTH)

    # Sketch3 → Cut-Extrude1 (cut, through all)
    with BuildSketch(Plane(origin=(0, 1, 0), x_dir=(1, 0, 0), z_dir=(0, 1, 0))):
        with BuildLine():
            ThreePointArc((-0.518779192, -5.29922884), (-3.404124769, -2.355249802), (-3.031088913, 1.75))
            ThreePointArc((-3.031088913, 1.75), (-2.338245241, 2.604344292), (-1.414452319, 3.201456643))
            ThreePointArc((-1.414452319, 3.201456643), (-4.658051165, 1.166519136), (-4.611205766, -2.66228089))
            ThreePointArc((-4.611205766, -2.66228089), (-2.884018037, -4.47586842), (-0.518779192, -5.29922884))
        make_face()
        with BuildLine():
            ThreePointArc((3.5, 0), (3.494938576, -0.188160443), (3.479768941, -0.375776681))
            ThreePointArc((3.479768941, -0.375776681), (3.339260789, 3.450731073), (0, 5.32456178))
            ThreePointArc((0, 5.32456178), (-2.434206737, 4.735567095), (-4.3298772, 3.098890379))
            ThreePointArc((-4.3298772, 3.098890379), (-0.337643776, 4.125683429), (3.031088913, 1.75))
            ThreePointArc((3.031088913, 1.75), (3.380740392, 0.905866658), (3.5, 0))
        make_face()
        with BuildLine():
            ThreePointArc((0, -3.5), (-1.086305696, -3.327151925), (-2.065316622, -2.825679962))
            ThreePointArc((-2.065316622, -2.825679962), (1.318790377, -4.617250209), (4.611205766, -2.66228089))
            ThreePointArc((4.611205766, -2.66228089), (5.143131737, -1.378097996), (5.32456178, 0))
            ThreePointArc((5.32456178, 0), (5.204225623, 1.1256082), (4.848656392, 2.200338461))
            ThreePointArc((4.848656392, 2.200338461), (3.741768545, -1.770433627), (0, -3.5))
        make_face()
    extrude(amount=-CUT_EXTRUDE1_DEPTH, mode=Mode.SUBTRACT)


with BuildPart() as part_2:
    # Scale1: scaled about (0, 0.5, 0)
    add(part_1.part.scale(SCALE1_SCALE).moved(Location((0, -1.2, 0))))

    # Sketch4 → Cut-Extrude2 (cut)
    with BuildSketch(Plane(origin=(0, 2.2, 0), x_dir=(1, 0, 0), z_dir=(0, 1, 0))):
        Polygon((-4.35, 0), (-2.175, -3.767210506), (2.175, -3.767210506), (4.35, 0), (2.175, 3.767210506), (-2.175, 3.767210506), align=None)
    extrude(amount=-CUT_EXTRUDE2_DEPTH, mode=Mode.SUBTRACT)


solid = part_2.part
